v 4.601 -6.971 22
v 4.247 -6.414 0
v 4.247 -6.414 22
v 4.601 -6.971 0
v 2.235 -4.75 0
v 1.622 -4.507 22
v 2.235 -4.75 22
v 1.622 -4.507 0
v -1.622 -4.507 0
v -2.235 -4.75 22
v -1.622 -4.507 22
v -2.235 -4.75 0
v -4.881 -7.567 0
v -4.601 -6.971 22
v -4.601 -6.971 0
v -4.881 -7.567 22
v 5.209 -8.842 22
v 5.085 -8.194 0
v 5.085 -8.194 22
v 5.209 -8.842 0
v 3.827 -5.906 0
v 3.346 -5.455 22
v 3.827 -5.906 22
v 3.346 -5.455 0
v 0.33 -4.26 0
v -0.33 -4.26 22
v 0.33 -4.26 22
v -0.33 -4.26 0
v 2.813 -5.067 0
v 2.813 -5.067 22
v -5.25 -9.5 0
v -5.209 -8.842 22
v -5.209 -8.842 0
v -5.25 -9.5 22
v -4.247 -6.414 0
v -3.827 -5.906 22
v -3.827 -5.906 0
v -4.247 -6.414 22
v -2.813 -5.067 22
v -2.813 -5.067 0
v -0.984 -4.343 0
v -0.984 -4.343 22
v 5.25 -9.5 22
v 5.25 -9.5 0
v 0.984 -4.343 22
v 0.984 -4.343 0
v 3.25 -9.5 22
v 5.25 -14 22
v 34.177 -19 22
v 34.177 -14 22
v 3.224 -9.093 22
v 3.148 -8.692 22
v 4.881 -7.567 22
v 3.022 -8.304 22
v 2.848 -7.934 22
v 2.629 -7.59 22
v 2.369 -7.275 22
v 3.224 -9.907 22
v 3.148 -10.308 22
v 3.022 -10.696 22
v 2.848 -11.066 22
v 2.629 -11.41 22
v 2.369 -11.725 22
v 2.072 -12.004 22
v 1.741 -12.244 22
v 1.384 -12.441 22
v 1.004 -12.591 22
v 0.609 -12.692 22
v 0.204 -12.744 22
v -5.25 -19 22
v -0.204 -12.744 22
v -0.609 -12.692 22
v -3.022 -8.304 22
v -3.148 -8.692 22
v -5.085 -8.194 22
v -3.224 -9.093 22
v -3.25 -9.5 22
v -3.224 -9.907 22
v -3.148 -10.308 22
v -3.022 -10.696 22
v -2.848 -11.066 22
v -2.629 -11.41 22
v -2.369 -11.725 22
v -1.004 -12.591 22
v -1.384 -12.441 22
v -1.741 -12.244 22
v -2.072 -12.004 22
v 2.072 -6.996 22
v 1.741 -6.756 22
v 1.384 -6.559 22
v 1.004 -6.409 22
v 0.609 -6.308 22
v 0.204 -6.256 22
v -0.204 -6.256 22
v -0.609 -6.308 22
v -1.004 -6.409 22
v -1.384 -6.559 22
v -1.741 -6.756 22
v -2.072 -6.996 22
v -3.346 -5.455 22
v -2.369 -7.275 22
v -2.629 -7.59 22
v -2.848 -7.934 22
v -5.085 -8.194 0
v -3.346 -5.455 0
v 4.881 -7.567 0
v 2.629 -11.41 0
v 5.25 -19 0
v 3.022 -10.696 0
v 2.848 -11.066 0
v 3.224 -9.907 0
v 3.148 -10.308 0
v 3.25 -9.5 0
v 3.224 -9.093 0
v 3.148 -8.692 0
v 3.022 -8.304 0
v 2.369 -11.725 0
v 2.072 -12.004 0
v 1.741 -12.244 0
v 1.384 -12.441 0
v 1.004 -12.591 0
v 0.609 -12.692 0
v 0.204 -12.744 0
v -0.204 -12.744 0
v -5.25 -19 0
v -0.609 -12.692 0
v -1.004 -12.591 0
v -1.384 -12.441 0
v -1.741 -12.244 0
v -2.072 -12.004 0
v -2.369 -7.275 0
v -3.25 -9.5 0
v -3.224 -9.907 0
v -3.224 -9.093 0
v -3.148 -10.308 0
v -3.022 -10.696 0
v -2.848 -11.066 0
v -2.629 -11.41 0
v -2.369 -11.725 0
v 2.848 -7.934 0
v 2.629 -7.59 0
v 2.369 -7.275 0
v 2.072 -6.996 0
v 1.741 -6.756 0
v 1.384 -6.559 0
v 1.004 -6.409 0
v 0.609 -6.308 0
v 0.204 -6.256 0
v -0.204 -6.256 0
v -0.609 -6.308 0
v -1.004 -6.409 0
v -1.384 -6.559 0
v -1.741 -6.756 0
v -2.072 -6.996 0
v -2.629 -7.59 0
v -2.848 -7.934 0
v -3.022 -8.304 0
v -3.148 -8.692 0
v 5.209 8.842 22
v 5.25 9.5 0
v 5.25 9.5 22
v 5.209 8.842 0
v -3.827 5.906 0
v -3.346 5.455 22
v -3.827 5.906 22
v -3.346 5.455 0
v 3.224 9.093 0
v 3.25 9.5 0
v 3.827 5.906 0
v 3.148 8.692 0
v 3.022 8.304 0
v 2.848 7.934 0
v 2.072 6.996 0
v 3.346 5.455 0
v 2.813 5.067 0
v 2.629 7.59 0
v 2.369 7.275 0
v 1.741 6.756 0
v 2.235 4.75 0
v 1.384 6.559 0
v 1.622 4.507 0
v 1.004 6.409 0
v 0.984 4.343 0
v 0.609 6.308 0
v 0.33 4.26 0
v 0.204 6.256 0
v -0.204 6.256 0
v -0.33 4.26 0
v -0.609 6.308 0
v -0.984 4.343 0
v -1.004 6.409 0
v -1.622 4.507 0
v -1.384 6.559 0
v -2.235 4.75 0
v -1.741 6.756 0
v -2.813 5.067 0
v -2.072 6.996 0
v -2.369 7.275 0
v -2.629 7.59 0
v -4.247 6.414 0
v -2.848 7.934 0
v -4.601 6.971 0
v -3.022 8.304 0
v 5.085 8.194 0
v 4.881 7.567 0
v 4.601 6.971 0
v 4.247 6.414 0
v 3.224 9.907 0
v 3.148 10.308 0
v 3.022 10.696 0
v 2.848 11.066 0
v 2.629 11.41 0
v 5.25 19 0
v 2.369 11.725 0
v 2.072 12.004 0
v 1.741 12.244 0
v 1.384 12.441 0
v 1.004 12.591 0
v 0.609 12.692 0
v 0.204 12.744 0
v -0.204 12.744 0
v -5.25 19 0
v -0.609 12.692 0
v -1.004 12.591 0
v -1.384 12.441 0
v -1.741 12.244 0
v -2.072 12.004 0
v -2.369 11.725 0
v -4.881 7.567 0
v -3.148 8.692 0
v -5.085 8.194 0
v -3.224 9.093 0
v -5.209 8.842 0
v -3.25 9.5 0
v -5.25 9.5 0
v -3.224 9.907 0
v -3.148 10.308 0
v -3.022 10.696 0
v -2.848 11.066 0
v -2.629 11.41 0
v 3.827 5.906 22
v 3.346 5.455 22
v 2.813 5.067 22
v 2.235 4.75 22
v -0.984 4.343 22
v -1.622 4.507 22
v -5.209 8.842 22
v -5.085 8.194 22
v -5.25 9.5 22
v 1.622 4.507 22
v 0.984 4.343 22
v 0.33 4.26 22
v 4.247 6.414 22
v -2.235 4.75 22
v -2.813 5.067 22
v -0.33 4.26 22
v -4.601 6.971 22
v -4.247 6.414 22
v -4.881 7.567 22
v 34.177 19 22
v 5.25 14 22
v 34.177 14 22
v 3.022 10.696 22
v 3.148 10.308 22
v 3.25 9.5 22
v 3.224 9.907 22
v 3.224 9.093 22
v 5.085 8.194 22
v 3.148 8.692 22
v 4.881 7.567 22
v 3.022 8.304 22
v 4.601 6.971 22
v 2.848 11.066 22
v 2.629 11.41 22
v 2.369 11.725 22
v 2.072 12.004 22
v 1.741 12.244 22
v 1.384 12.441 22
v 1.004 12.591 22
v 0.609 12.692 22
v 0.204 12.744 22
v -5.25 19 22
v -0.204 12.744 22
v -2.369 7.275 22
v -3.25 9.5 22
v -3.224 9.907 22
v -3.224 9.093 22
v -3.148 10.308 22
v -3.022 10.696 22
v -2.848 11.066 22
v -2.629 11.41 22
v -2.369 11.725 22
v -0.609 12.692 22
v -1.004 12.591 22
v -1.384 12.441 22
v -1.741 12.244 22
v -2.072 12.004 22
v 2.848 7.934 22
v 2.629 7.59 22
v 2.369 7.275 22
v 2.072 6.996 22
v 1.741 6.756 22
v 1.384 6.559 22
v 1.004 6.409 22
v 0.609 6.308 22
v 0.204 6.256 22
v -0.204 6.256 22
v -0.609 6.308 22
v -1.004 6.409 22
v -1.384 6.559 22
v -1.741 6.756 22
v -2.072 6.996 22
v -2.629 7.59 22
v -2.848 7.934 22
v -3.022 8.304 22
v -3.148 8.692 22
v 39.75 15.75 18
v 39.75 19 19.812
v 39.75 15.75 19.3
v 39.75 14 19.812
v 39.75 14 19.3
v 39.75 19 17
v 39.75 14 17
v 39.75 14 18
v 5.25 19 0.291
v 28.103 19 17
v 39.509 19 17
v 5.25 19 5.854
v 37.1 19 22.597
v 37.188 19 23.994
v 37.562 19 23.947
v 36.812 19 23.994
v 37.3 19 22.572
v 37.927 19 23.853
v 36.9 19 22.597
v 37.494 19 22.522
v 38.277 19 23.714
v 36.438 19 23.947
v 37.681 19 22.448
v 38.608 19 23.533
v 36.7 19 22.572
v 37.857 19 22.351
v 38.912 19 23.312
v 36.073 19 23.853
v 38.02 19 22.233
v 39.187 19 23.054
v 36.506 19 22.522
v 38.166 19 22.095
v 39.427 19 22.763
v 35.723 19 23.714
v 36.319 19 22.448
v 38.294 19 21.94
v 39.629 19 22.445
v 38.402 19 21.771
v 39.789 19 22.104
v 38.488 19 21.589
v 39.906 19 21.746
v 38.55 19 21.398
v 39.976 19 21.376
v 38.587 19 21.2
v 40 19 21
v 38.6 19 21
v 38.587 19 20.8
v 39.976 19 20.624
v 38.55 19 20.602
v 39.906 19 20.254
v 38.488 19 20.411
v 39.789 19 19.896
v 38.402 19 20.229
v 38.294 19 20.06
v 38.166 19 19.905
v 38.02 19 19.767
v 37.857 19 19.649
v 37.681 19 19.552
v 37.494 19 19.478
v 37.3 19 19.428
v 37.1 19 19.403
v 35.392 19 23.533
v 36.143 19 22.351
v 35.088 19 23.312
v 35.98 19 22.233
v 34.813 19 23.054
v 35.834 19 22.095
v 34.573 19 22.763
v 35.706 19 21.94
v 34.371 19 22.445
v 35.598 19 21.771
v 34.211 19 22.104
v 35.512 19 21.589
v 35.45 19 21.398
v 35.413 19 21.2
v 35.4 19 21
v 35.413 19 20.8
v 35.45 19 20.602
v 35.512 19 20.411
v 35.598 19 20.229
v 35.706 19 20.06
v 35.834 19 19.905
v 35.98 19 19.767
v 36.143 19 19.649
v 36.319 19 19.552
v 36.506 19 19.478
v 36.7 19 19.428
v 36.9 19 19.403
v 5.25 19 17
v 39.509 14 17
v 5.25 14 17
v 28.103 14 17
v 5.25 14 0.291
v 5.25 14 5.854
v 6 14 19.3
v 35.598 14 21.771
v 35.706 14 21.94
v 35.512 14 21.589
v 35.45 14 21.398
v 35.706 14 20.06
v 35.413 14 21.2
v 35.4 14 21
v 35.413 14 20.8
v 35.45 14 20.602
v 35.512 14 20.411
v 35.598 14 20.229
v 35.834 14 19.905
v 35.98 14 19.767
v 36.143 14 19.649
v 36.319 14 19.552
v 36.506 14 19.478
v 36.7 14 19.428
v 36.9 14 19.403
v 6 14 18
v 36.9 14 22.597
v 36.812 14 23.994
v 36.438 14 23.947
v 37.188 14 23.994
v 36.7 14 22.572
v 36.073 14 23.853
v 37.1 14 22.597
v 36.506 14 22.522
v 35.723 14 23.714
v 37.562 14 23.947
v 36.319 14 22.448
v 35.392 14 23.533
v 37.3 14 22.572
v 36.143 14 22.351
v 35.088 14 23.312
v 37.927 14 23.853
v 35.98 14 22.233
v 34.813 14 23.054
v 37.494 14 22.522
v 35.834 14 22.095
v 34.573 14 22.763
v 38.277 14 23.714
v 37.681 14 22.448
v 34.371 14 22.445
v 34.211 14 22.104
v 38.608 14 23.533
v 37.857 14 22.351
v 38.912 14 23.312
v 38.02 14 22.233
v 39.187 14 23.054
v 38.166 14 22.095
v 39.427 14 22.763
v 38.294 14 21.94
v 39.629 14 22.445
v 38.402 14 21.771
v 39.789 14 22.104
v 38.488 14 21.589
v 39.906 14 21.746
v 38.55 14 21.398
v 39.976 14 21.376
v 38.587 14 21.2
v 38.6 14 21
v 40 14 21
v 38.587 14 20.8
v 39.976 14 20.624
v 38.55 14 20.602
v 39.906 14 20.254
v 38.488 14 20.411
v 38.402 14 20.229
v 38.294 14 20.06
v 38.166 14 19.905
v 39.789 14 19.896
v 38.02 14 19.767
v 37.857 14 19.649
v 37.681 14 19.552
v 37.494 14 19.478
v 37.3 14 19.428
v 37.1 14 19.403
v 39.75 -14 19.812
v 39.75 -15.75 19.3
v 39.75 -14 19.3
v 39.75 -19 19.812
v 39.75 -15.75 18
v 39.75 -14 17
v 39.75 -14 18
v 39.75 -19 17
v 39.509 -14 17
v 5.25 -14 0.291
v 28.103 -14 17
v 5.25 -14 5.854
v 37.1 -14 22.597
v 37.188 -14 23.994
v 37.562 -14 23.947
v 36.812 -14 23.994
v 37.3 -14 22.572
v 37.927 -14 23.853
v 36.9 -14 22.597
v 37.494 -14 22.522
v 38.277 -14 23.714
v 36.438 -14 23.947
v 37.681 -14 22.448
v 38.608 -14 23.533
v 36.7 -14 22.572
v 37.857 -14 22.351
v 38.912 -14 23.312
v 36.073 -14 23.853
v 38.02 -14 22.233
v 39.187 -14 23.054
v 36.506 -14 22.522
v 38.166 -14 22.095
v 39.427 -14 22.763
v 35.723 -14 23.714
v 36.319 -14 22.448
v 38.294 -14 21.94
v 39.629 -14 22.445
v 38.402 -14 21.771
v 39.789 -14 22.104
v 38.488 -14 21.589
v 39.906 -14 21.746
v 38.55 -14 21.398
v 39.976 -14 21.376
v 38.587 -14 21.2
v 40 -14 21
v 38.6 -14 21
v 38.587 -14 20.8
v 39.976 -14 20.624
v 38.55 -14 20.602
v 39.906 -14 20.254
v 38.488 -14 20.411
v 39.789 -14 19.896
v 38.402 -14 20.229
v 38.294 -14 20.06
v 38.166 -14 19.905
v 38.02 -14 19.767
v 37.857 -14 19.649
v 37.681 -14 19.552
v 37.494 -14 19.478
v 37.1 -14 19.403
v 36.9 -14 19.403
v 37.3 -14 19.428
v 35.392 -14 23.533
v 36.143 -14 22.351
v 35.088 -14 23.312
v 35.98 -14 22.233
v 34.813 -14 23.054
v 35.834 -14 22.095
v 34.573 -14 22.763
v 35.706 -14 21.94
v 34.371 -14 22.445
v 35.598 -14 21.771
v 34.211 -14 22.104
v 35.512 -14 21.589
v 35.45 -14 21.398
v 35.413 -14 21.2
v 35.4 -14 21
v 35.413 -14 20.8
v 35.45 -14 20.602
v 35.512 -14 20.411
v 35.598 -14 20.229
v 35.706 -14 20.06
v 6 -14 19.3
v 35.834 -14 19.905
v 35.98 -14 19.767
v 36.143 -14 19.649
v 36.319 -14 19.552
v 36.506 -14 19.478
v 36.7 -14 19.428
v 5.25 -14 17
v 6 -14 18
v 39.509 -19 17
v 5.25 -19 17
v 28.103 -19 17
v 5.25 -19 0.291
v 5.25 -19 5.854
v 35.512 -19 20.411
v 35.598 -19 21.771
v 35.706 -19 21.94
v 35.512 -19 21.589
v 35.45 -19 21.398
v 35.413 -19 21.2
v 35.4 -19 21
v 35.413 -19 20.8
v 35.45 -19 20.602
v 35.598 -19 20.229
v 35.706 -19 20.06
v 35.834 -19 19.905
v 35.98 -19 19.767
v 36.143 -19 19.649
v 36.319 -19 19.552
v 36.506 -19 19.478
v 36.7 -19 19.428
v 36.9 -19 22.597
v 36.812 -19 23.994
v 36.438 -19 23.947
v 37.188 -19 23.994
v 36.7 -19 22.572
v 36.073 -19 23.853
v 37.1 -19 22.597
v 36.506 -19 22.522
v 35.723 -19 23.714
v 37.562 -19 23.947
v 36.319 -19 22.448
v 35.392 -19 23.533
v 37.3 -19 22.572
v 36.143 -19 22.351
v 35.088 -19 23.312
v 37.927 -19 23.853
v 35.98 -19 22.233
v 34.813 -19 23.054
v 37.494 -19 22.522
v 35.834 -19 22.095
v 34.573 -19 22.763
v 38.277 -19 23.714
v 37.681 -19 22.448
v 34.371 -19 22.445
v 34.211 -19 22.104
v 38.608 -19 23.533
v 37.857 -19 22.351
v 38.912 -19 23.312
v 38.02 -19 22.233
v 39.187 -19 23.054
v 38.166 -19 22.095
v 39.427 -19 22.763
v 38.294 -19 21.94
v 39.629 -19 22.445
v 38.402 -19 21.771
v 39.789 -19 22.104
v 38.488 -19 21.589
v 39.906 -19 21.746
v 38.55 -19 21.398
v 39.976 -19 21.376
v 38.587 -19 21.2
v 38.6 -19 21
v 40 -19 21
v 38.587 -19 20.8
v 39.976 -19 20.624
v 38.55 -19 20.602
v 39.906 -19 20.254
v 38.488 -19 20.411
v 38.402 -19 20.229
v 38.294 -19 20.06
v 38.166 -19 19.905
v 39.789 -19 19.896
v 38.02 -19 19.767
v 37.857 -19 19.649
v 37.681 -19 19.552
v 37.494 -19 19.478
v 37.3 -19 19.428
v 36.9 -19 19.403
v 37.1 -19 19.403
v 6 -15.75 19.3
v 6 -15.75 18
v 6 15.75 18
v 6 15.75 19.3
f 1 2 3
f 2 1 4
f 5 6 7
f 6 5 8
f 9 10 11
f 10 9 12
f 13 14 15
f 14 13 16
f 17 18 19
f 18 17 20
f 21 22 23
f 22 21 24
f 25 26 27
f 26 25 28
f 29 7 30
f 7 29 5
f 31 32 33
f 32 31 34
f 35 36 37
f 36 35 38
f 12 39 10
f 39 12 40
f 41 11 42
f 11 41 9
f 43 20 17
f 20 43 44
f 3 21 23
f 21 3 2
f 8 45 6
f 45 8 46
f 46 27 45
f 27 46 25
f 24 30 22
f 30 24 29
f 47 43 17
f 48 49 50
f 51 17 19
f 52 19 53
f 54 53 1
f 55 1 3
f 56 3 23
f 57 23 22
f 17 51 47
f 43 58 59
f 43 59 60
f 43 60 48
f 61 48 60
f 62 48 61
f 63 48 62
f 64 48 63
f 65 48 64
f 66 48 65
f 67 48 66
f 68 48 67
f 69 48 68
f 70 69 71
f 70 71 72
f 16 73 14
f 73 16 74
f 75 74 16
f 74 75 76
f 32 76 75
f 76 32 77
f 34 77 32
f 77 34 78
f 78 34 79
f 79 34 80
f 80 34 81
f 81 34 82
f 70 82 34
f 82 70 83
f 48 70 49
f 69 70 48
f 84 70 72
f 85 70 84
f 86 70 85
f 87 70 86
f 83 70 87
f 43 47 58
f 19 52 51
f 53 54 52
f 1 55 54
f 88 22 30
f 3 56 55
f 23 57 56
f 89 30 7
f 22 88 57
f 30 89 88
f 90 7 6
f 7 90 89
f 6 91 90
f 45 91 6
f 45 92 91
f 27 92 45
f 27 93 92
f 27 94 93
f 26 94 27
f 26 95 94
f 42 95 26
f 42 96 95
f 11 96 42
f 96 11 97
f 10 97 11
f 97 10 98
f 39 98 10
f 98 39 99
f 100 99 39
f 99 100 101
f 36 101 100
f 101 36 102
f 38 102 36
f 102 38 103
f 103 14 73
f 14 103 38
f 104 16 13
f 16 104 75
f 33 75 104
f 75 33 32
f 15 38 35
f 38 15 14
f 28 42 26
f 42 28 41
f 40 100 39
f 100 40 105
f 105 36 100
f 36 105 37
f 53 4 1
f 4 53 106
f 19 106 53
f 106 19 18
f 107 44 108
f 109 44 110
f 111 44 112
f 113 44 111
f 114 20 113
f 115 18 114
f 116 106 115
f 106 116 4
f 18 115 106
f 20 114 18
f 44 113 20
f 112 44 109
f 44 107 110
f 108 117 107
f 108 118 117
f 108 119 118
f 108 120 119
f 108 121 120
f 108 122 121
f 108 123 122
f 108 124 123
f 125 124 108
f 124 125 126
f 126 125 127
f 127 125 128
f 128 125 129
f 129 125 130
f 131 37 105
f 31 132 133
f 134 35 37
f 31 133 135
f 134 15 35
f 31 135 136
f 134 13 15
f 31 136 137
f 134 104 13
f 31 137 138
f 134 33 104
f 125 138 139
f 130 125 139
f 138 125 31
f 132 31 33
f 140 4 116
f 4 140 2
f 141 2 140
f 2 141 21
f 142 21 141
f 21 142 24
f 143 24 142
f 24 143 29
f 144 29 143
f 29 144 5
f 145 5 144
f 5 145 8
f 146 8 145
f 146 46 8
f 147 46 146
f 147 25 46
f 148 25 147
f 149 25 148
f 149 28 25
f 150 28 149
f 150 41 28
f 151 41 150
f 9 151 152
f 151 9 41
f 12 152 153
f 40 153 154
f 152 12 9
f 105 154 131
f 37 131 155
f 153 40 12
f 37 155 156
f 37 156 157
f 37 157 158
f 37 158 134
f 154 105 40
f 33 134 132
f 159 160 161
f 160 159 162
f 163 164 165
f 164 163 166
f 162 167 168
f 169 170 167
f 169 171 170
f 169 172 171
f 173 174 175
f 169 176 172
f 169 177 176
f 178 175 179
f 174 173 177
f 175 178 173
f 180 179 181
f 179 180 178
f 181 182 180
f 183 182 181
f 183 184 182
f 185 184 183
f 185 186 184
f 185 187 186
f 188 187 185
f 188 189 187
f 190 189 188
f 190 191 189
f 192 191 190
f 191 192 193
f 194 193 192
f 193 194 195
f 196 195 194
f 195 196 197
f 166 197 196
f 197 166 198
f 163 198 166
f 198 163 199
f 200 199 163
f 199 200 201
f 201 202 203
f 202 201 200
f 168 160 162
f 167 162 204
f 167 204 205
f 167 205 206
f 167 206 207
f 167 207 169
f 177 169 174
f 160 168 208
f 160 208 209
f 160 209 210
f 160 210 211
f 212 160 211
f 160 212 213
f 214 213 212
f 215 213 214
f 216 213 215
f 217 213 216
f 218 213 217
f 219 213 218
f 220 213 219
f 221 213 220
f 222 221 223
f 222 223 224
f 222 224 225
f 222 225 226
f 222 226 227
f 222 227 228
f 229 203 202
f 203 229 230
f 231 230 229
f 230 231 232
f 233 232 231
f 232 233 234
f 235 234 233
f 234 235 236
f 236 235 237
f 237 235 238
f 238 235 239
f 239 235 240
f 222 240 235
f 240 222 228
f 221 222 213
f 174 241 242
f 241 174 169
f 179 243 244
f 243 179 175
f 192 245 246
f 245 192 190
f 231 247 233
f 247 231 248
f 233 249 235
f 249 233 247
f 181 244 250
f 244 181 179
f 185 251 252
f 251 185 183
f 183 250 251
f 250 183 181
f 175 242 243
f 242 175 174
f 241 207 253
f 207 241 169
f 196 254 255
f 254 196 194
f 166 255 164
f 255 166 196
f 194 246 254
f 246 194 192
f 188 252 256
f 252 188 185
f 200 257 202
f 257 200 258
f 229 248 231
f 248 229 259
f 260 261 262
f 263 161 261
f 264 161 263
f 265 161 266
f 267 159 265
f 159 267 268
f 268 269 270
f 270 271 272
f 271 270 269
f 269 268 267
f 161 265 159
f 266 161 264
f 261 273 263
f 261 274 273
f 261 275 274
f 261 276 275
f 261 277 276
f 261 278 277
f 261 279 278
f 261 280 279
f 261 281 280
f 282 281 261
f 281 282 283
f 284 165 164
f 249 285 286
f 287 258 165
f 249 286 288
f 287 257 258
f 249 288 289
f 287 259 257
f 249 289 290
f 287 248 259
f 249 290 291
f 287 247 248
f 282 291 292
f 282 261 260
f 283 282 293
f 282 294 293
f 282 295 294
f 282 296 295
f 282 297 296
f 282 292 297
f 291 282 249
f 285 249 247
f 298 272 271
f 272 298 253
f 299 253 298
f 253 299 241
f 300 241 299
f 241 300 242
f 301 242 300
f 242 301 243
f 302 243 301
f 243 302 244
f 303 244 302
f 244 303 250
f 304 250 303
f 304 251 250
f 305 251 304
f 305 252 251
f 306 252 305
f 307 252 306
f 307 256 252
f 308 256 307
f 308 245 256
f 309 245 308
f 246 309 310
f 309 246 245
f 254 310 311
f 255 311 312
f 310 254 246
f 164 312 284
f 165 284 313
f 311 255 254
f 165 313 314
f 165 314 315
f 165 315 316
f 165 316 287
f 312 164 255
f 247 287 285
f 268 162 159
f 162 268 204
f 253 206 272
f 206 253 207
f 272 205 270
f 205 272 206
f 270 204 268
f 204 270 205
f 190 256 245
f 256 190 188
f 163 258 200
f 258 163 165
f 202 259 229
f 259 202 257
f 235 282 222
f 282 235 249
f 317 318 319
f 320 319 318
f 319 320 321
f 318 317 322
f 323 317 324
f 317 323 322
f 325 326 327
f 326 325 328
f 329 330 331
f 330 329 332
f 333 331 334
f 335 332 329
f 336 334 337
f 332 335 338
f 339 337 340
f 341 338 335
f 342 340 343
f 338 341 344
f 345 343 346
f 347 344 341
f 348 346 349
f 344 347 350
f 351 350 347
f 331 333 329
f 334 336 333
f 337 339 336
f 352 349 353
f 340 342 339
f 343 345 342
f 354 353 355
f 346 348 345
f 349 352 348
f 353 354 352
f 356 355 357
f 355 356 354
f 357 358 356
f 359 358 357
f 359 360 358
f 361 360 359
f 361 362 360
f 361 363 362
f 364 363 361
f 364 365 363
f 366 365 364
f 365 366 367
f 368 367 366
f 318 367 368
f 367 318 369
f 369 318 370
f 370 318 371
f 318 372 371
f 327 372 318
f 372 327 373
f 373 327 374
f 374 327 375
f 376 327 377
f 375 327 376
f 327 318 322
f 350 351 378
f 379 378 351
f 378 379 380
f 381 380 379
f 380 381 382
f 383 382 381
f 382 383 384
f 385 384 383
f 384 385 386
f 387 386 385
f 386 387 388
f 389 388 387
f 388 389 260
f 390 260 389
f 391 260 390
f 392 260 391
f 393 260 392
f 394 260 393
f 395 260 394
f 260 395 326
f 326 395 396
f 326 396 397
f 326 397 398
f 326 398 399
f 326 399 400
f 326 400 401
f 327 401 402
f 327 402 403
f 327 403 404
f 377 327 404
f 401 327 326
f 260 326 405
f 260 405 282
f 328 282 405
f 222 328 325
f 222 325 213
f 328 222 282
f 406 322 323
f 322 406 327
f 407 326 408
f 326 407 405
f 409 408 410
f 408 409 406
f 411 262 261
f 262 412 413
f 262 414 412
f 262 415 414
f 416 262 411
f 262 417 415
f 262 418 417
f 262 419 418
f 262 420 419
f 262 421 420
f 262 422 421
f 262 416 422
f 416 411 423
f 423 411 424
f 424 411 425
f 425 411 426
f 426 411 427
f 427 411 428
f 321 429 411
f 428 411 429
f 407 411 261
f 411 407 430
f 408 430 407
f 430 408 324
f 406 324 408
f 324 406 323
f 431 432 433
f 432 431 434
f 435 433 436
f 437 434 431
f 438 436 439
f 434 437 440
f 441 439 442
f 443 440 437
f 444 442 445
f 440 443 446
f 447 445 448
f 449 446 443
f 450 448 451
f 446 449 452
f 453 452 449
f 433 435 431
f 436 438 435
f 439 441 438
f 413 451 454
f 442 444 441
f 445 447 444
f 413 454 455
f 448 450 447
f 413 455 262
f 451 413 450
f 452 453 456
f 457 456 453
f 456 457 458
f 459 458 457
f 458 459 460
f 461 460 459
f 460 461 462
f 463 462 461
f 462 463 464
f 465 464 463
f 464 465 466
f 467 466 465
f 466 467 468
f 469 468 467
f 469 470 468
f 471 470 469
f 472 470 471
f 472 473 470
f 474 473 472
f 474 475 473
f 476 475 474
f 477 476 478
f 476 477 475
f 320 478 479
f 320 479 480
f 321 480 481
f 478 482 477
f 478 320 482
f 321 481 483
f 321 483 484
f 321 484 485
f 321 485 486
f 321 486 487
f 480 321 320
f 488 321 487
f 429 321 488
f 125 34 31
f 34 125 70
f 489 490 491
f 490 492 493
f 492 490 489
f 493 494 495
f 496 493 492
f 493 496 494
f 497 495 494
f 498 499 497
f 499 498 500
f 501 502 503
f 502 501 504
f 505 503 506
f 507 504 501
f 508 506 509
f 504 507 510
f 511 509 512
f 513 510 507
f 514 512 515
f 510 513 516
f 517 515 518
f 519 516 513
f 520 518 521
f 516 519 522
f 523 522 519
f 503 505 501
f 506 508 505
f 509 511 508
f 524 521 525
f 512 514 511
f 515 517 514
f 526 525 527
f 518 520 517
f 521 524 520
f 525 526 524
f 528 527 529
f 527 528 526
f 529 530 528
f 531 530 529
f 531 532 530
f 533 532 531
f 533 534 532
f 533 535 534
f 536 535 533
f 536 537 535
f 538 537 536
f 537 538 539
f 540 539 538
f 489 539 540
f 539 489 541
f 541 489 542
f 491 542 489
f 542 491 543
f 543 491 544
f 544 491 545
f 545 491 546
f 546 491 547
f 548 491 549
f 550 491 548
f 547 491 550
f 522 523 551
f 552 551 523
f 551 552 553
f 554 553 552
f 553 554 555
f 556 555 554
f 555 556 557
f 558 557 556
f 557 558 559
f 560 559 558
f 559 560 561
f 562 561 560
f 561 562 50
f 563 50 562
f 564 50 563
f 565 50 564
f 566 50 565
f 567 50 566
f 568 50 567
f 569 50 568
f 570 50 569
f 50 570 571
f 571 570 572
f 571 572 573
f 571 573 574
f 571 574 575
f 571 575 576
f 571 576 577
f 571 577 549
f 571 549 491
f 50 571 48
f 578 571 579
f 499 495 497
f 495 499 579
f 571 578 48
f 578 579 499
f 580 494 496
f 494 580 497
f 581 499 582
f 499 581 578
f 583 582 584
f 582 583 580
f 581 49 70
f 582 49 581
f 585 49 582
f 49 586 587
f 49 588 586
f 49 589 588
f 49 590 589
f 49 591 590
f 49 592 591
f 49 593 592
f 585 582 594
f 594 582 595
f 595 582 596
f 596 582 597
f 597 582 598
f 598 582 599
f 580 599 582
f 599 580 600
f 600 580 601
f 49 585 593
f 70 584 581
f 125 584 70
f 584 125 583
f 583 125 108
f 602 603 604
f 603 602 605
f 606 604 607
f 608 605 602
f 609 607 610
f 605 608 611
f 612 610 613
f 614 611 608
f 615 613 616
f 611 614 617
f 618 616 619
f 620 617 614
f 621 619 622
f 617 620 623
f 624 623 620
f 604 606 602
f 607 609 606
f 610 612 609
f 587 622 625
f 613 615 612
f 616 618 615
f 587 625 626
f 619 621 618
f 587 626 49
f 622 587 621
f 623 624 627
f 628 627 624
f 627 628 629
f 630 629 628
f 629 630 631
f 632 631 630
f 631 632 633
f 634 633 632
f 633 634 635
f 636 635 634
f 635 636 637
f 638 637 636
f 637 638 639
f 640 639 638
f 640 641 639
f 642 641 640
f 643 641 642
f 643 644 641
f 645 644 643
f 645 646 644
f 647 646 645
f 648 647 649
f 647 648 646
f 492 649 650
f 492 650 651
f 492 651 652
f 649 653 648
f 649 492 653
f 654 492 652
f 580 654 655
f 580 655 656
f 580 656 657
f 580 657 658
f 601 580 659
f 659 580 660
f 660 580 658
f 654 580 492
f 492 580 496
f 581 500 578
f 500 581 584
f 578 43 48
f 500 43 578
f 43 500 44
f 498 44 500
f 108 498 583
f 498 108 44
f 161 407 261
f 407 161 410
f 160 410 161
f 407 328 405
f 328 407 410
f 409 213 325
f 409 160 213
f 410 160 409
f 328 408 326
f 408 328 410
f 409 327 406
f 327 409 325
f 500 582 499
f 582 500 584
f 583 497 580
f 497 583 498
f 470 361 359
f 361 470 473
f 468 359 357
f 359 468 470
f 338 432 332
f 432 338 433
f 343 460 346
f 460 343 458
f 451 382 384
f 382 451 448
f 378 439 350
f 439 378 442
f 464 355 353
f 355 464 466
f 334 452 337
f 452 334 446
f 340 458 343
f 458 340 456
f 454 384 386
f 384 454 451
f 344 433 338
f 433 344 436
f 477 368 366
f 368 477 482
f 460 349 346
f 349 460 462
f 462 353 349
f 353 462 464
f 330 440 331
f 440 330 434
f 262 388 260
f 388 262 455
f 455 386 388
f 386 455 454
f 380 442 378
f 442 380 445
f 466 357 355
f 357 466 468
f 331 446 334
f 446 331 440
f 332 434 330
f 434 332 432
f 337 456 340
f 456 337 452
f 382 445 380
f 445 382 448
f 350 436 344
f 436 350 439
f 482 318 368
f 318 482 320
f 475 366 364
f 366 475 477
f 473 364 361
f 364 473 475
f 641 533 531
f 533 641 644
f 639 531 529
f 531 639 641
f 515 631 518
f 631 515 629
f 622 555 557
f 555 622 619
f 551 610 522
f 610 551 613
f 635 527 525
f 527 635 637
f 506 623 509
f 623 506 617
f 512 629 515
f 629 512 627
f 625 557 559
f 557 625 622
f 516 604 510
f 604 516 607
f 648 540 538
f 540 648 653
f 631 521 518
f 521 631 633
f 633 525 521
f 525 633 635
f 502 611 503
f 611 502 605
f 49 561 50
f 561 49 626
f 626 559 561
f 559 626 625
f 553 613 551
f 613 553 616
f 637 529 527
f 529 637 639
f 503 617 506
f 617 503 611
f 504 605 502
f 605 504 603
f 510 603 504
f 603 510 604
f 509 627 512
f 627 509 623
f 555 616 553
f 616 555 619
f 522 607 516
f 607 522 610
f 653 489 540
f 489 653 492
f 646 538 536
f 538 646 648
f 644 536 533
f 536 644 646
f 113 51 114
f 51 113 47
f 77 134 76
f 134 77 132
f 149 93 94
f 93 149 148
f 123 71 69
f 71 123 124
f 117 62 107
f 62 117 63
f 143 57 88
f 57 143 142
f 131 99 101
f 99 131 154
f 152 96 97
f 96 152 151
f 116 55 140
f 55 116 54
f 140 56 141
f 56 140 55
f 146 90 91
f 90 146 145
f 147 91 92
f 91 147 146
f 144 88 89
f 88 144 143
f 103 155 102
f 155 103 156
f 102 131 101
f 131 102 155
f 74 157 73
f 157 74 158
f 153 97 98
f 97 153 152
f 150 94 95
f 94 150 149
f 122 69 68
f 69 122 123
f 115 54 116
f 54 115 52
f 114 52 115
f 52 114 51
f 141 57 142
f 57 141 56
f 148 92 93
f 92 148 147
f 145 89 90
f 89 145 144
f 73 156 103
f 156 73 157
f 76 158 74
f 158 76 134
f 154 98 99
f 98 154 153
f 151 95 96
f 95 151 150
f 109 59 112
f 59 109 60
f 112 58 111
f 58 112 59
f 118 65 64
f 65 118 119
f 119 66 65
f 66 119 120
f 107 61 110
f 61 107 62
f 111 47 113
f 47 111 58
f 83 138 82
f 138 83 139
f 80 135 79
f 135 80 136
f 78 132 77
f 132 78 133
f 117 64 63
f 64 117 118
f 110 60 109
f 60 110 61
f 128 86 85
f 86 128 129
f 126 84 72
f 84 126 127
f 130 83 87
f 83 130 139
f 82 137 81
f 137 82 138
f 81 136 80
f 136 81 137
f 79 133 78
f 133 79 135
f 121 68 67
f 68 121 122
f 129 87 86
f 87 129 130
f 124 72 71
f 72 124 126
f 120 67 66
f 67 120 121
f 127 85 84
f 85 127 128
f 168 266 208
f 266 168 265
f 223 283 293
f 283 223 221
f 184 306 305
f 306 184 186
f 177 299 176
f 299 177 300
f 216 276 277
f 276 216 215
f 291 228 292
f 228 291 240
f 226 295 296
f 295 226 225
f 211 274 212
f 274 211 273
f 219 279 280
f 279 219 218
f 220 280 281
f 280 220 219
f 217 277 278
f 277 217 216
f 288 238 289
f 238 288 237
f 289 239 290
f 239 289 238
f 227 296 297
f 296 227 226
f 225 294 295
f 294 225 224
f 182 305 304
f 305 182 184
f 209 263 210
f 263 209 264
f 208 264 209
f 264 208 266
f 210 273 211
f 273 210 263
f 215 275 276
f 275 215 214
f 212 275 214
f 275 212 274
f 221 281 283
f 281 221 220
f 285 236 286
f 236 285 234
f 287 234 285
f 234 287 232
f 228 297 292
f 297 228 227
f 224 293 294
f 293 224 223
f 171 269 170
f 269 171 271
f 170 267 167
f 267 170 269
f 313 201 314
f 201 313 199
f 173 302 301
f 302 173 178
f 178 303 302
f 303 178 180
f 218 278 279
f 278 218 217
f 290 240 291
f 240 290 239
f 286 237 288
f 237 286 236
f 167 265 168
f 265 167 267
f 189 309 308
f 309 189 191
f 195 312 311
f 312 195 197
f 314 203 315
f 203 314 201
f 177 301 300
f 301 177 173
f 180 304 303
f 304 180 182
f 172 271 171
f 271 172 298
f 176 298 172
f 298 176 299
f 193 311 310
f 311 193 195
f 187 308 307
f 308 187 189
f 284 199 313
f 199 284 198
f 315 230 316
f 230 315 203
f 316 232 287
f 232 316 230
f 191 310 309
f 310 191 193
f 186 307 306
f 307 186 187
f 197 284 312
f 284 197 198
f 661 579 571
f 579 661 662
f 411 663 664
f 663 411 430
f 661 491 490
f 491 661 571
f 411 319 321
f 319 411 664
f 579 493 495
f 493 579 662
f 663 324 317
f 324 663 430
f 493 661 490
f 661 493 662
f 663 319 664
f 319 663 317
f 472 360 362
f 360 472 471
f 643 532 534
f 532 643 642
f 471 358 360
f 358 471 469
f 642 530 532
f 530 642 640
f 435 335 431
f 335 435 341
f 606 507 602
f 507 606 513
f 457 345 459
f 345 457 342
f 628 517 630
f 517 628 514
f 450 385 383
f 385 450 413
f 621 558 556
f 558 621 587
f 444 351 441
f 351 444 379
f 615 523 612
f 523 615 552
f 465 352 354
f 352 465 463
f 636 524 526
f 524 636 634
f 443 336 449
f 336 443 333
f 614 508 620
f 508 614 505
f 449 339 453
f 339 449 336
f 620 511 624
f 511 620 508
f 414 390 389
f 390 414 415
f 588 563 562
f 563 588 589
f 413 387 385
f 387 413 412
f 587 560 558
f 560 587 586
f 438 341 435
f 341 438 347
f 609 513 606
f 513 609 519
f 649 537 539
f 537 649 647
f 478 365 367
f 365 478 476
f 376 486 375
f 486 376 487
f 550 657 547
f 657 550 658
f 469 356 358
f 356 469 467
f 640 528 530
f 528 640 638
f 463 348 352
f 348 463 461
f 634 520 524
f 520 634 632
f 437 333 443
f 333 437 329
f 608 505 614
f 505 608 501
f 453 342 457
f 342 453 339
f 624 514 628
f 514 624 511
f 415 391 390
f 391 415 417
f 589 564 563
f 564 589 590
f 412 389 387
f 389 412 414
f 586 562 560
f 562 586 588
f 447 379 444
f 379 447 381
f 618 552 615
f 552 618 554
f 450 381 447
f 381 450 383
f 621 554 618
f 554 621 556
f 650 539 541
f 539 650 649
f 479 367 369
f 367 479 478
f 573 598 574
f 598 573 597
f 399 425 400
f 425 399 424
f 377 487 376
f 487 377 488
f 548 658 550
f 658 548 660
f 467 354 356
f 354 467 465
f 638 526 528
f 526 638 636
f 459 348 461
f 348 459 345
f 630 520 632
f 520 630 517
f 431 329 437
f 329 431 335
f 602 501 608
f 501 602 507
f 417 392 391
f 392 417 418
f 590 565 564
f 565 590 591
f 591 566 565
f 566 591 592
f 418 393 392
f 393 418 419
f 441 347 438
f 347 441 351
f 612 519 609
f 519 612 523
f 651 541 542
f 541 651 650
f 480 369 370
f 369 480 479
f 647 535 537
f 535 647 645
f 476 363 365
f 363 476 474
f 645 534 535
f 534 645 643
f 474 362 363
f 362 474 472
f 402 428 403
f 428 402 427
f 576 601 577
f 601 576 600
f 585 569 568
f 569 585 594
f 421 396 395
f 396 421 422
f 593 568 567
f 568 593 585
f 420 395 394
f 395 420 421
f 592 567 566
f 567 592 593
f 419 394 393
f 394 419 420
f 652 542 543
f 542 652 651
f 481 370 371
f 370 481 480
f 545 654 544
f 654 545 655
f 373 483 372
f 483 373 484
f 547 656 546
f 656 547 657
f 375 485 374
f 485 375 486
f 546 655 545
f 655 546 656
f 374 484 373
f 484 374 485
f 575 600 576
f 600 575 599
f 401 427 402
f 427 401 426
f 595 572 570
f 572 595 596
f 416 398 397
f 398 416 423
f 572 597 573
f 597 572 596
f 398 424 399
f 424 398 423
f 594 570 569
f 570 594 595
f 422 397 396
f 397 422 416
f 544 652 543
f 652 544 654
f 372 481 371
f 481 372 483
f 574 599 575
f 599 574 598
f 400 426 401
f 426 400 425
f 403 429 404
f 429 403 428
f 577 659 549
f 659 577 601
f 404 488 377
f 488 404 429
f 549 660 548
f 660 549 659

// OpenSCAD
$fn=50;
difference(){
    union(){
        //standoff sleves
        union(){
            translate([0,-9.5,0]) cylinder(h=22, d=10.5);
            translate([0,9.5,0]) cylinder(h=22, d=10.5);
        }
        //rail for pcb
        translate([-5.25,14,17]) cube([45,5,5]);
        translate([-5.25,-19,17]) cube([45,5,5]);

        //support by standoffs
        translate([-5.25,-19,0]) cube([10.5,9.5,22]);
        translate([-5.25,9.5,0]) cube([10.5,9.5,22]);

        //26 degree support
        rotate([0,-26,0]) translate([4.2,14,-2.04]) cube([39,5,5]);
        rotate([0,-26,0]) translate([4.2,-19,-2.04]) cube([39,5,5]);
        
        //screw support
        rotate([90,0,0]) translate([37,21,-19]) cylinder(h=5, d=6);
        rotate([90,0,0]) translate([37,21,14]) cylinder(h=5, d=6);

    }
    //standoffs
    union(){
        translate([0,-9.5,0]) cylinder(h=22, d=6.5);
        translate([0,9.5,0]) cylinder(h=22, d=6.5);
    }
    
    //gps module
    translate([6,-15.75,18]) union(){
        cube([31.5,31.5,1.3]);
        translate([4,2.7,1.3]) cube([25,25,4]);
        
        //extension for cutout
        translate([0,26.5,0]) cube([35,5,1.3]);
        cube([35,5,1.3]);
    }
    rotate([90,0,0]) translate([37,21,-20]) cylinder(h=40, d=3.2);
}






//translate([50,14.75,22]) rotate([180,0,-90]) prism(29.5, 55, 22);


module prism(l, w, h){
       polyhedron(
               points=[[0,0,0], [l,0,0], [l,w,0], [0,w,0], [0,w,h], [l,w,h]],
               faces=[[0,1,2,3],[5,4,3,2],[0,4,5,1],[0,3,4],[5,2,1]]
               );
       }
   
   
